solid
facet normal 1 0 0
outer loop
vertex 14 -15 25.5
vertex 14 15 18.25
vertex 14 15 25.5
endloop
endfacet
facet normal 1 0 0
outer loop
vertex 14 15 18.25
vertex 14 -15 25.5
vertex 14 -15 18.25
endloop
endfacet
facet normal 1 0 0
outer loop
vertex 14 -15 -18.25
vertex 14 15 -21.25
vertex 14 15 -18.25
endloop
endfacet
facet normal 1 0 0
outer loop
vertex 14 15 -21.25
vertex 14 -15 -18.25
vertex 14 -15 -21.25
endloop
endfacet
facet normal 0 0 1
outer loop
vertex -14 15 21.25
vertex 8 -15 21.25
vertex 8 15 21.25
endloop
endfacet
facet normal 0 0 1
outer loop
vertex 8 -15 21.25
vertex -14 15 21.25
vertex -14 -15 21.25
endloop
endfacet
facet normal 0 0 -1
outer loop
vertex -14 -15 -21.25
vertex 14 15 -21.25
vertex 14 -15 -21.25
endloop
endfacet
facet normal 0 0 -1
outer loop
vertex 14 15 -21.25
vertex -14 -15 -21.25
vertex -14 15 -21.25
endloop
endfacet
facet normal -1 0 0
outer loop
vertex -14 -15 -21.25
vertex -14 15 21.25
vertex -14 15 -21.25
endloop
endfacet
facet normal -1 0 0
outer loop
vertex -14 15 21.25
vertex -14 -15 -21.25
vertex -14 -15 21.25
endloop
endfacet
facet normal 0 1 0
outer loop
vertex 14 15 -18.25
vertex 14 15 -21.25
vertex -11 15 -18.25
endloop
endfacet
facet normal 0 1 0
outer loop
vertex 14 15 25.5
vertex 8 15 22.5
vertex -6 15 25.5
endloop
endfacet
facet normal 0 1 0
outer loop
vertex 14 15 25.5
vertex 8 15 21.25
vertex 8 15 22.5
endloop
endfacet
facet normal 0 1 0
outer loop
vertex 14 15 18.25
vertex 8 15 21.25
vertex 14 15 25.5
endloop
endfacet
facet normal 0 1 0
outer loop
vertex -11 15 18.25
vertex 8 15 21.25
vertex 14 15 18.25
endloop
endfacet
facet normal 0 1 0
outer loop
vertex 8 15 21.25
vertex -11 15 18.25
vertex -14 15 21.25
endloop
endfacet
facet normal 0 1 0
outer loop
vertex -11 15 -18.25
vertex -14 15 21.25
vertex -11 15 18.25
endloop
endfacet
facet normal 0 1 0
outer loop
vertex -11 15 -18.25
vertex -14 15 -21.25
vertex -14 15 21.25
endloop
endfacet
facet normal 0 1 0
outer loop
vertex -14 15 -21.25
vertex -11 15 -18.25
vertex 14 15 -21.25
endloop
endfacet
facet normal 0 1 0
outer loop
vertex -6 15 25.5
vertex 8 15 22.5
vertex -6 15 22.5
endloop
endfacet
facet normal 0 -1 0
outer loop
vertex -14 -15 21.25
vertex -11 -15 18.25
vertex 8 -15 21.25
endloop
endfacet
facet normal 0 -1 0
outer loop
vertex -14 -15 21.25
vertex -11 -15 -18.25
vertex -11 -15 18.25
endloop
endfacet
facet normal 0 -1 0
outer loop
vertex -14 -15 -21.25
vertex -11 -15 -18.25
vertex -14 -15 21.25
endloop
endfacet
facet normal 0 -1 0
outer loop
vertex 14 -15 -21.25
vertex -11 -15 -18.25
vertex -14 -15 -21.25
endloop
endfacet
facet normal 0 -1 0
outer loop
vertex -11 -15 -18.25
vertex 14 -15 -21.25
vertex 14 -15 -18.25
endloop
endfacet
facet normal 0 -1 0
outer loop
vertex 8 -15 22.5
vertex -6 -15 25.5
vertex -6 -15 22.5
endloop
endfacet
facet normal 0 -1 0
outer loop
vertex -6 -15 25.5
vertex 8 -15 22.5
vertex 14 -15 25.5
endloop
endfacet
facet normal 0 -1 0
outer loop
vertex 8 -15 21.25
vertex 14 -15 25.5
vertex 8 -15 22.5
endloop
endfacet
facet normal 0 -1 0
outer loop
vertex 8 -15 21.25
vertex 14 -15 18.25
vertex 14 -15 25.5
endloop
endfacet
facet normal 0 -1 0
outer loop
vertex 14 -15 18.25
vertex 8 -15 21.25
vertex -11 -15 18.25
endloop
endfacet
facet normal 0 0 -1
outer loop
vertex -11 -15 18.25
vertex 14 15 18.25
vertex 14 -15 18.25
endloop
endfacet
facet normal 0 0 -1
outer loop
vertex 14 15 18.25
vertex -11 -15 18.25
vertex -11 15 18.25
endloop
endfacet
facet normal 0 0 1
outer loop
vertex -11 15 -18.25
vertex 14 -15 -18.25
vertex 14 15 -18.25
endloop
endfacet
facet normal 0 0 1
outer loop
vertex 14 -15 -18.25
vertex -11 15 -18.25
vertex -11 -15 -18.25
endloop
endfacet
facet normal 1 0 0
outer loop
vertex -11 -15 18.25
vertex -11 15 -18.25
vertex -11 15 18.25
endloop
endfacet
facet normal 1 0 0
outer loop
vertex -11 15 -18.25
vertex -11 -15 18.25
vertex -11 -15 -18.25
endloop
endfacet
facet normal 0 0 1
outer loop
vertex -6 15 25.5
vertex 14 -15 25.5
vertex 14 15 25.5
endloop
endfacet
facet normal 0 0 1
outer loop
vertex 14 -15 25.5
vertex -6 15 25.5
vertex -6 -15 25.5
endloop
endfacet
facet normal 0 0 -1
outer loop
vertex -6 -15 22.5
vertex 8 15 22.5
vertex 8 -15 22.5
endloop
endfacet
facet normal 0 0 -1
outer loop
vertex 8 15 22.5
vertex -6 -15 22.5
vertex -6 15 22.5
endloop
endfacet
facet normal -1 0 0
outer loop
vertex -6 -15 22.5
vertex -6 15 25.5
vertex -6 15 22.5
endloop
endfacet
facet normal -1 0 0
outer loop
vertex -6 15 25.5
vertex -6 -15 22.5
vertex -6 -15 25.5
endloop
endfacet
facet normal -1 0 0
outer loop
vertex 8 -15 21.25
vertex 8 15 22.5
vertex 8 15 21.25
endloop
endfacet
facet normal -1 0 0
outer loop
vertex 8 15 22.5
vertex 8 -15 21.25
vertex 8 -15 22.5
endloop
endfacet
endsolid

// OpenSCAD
difference() {
    cube([28, 30, 42.5], true);
translate([4,0, 0]) cube([30, 70, 36.5], true);

//translate([10, 10, 0]) cube([56.5, 50, 50], true);
}

translate([4,0, 24]) cube([20, 30, 3], true);

translate([11,0, 22]) cube([6, 30, 3], true);
